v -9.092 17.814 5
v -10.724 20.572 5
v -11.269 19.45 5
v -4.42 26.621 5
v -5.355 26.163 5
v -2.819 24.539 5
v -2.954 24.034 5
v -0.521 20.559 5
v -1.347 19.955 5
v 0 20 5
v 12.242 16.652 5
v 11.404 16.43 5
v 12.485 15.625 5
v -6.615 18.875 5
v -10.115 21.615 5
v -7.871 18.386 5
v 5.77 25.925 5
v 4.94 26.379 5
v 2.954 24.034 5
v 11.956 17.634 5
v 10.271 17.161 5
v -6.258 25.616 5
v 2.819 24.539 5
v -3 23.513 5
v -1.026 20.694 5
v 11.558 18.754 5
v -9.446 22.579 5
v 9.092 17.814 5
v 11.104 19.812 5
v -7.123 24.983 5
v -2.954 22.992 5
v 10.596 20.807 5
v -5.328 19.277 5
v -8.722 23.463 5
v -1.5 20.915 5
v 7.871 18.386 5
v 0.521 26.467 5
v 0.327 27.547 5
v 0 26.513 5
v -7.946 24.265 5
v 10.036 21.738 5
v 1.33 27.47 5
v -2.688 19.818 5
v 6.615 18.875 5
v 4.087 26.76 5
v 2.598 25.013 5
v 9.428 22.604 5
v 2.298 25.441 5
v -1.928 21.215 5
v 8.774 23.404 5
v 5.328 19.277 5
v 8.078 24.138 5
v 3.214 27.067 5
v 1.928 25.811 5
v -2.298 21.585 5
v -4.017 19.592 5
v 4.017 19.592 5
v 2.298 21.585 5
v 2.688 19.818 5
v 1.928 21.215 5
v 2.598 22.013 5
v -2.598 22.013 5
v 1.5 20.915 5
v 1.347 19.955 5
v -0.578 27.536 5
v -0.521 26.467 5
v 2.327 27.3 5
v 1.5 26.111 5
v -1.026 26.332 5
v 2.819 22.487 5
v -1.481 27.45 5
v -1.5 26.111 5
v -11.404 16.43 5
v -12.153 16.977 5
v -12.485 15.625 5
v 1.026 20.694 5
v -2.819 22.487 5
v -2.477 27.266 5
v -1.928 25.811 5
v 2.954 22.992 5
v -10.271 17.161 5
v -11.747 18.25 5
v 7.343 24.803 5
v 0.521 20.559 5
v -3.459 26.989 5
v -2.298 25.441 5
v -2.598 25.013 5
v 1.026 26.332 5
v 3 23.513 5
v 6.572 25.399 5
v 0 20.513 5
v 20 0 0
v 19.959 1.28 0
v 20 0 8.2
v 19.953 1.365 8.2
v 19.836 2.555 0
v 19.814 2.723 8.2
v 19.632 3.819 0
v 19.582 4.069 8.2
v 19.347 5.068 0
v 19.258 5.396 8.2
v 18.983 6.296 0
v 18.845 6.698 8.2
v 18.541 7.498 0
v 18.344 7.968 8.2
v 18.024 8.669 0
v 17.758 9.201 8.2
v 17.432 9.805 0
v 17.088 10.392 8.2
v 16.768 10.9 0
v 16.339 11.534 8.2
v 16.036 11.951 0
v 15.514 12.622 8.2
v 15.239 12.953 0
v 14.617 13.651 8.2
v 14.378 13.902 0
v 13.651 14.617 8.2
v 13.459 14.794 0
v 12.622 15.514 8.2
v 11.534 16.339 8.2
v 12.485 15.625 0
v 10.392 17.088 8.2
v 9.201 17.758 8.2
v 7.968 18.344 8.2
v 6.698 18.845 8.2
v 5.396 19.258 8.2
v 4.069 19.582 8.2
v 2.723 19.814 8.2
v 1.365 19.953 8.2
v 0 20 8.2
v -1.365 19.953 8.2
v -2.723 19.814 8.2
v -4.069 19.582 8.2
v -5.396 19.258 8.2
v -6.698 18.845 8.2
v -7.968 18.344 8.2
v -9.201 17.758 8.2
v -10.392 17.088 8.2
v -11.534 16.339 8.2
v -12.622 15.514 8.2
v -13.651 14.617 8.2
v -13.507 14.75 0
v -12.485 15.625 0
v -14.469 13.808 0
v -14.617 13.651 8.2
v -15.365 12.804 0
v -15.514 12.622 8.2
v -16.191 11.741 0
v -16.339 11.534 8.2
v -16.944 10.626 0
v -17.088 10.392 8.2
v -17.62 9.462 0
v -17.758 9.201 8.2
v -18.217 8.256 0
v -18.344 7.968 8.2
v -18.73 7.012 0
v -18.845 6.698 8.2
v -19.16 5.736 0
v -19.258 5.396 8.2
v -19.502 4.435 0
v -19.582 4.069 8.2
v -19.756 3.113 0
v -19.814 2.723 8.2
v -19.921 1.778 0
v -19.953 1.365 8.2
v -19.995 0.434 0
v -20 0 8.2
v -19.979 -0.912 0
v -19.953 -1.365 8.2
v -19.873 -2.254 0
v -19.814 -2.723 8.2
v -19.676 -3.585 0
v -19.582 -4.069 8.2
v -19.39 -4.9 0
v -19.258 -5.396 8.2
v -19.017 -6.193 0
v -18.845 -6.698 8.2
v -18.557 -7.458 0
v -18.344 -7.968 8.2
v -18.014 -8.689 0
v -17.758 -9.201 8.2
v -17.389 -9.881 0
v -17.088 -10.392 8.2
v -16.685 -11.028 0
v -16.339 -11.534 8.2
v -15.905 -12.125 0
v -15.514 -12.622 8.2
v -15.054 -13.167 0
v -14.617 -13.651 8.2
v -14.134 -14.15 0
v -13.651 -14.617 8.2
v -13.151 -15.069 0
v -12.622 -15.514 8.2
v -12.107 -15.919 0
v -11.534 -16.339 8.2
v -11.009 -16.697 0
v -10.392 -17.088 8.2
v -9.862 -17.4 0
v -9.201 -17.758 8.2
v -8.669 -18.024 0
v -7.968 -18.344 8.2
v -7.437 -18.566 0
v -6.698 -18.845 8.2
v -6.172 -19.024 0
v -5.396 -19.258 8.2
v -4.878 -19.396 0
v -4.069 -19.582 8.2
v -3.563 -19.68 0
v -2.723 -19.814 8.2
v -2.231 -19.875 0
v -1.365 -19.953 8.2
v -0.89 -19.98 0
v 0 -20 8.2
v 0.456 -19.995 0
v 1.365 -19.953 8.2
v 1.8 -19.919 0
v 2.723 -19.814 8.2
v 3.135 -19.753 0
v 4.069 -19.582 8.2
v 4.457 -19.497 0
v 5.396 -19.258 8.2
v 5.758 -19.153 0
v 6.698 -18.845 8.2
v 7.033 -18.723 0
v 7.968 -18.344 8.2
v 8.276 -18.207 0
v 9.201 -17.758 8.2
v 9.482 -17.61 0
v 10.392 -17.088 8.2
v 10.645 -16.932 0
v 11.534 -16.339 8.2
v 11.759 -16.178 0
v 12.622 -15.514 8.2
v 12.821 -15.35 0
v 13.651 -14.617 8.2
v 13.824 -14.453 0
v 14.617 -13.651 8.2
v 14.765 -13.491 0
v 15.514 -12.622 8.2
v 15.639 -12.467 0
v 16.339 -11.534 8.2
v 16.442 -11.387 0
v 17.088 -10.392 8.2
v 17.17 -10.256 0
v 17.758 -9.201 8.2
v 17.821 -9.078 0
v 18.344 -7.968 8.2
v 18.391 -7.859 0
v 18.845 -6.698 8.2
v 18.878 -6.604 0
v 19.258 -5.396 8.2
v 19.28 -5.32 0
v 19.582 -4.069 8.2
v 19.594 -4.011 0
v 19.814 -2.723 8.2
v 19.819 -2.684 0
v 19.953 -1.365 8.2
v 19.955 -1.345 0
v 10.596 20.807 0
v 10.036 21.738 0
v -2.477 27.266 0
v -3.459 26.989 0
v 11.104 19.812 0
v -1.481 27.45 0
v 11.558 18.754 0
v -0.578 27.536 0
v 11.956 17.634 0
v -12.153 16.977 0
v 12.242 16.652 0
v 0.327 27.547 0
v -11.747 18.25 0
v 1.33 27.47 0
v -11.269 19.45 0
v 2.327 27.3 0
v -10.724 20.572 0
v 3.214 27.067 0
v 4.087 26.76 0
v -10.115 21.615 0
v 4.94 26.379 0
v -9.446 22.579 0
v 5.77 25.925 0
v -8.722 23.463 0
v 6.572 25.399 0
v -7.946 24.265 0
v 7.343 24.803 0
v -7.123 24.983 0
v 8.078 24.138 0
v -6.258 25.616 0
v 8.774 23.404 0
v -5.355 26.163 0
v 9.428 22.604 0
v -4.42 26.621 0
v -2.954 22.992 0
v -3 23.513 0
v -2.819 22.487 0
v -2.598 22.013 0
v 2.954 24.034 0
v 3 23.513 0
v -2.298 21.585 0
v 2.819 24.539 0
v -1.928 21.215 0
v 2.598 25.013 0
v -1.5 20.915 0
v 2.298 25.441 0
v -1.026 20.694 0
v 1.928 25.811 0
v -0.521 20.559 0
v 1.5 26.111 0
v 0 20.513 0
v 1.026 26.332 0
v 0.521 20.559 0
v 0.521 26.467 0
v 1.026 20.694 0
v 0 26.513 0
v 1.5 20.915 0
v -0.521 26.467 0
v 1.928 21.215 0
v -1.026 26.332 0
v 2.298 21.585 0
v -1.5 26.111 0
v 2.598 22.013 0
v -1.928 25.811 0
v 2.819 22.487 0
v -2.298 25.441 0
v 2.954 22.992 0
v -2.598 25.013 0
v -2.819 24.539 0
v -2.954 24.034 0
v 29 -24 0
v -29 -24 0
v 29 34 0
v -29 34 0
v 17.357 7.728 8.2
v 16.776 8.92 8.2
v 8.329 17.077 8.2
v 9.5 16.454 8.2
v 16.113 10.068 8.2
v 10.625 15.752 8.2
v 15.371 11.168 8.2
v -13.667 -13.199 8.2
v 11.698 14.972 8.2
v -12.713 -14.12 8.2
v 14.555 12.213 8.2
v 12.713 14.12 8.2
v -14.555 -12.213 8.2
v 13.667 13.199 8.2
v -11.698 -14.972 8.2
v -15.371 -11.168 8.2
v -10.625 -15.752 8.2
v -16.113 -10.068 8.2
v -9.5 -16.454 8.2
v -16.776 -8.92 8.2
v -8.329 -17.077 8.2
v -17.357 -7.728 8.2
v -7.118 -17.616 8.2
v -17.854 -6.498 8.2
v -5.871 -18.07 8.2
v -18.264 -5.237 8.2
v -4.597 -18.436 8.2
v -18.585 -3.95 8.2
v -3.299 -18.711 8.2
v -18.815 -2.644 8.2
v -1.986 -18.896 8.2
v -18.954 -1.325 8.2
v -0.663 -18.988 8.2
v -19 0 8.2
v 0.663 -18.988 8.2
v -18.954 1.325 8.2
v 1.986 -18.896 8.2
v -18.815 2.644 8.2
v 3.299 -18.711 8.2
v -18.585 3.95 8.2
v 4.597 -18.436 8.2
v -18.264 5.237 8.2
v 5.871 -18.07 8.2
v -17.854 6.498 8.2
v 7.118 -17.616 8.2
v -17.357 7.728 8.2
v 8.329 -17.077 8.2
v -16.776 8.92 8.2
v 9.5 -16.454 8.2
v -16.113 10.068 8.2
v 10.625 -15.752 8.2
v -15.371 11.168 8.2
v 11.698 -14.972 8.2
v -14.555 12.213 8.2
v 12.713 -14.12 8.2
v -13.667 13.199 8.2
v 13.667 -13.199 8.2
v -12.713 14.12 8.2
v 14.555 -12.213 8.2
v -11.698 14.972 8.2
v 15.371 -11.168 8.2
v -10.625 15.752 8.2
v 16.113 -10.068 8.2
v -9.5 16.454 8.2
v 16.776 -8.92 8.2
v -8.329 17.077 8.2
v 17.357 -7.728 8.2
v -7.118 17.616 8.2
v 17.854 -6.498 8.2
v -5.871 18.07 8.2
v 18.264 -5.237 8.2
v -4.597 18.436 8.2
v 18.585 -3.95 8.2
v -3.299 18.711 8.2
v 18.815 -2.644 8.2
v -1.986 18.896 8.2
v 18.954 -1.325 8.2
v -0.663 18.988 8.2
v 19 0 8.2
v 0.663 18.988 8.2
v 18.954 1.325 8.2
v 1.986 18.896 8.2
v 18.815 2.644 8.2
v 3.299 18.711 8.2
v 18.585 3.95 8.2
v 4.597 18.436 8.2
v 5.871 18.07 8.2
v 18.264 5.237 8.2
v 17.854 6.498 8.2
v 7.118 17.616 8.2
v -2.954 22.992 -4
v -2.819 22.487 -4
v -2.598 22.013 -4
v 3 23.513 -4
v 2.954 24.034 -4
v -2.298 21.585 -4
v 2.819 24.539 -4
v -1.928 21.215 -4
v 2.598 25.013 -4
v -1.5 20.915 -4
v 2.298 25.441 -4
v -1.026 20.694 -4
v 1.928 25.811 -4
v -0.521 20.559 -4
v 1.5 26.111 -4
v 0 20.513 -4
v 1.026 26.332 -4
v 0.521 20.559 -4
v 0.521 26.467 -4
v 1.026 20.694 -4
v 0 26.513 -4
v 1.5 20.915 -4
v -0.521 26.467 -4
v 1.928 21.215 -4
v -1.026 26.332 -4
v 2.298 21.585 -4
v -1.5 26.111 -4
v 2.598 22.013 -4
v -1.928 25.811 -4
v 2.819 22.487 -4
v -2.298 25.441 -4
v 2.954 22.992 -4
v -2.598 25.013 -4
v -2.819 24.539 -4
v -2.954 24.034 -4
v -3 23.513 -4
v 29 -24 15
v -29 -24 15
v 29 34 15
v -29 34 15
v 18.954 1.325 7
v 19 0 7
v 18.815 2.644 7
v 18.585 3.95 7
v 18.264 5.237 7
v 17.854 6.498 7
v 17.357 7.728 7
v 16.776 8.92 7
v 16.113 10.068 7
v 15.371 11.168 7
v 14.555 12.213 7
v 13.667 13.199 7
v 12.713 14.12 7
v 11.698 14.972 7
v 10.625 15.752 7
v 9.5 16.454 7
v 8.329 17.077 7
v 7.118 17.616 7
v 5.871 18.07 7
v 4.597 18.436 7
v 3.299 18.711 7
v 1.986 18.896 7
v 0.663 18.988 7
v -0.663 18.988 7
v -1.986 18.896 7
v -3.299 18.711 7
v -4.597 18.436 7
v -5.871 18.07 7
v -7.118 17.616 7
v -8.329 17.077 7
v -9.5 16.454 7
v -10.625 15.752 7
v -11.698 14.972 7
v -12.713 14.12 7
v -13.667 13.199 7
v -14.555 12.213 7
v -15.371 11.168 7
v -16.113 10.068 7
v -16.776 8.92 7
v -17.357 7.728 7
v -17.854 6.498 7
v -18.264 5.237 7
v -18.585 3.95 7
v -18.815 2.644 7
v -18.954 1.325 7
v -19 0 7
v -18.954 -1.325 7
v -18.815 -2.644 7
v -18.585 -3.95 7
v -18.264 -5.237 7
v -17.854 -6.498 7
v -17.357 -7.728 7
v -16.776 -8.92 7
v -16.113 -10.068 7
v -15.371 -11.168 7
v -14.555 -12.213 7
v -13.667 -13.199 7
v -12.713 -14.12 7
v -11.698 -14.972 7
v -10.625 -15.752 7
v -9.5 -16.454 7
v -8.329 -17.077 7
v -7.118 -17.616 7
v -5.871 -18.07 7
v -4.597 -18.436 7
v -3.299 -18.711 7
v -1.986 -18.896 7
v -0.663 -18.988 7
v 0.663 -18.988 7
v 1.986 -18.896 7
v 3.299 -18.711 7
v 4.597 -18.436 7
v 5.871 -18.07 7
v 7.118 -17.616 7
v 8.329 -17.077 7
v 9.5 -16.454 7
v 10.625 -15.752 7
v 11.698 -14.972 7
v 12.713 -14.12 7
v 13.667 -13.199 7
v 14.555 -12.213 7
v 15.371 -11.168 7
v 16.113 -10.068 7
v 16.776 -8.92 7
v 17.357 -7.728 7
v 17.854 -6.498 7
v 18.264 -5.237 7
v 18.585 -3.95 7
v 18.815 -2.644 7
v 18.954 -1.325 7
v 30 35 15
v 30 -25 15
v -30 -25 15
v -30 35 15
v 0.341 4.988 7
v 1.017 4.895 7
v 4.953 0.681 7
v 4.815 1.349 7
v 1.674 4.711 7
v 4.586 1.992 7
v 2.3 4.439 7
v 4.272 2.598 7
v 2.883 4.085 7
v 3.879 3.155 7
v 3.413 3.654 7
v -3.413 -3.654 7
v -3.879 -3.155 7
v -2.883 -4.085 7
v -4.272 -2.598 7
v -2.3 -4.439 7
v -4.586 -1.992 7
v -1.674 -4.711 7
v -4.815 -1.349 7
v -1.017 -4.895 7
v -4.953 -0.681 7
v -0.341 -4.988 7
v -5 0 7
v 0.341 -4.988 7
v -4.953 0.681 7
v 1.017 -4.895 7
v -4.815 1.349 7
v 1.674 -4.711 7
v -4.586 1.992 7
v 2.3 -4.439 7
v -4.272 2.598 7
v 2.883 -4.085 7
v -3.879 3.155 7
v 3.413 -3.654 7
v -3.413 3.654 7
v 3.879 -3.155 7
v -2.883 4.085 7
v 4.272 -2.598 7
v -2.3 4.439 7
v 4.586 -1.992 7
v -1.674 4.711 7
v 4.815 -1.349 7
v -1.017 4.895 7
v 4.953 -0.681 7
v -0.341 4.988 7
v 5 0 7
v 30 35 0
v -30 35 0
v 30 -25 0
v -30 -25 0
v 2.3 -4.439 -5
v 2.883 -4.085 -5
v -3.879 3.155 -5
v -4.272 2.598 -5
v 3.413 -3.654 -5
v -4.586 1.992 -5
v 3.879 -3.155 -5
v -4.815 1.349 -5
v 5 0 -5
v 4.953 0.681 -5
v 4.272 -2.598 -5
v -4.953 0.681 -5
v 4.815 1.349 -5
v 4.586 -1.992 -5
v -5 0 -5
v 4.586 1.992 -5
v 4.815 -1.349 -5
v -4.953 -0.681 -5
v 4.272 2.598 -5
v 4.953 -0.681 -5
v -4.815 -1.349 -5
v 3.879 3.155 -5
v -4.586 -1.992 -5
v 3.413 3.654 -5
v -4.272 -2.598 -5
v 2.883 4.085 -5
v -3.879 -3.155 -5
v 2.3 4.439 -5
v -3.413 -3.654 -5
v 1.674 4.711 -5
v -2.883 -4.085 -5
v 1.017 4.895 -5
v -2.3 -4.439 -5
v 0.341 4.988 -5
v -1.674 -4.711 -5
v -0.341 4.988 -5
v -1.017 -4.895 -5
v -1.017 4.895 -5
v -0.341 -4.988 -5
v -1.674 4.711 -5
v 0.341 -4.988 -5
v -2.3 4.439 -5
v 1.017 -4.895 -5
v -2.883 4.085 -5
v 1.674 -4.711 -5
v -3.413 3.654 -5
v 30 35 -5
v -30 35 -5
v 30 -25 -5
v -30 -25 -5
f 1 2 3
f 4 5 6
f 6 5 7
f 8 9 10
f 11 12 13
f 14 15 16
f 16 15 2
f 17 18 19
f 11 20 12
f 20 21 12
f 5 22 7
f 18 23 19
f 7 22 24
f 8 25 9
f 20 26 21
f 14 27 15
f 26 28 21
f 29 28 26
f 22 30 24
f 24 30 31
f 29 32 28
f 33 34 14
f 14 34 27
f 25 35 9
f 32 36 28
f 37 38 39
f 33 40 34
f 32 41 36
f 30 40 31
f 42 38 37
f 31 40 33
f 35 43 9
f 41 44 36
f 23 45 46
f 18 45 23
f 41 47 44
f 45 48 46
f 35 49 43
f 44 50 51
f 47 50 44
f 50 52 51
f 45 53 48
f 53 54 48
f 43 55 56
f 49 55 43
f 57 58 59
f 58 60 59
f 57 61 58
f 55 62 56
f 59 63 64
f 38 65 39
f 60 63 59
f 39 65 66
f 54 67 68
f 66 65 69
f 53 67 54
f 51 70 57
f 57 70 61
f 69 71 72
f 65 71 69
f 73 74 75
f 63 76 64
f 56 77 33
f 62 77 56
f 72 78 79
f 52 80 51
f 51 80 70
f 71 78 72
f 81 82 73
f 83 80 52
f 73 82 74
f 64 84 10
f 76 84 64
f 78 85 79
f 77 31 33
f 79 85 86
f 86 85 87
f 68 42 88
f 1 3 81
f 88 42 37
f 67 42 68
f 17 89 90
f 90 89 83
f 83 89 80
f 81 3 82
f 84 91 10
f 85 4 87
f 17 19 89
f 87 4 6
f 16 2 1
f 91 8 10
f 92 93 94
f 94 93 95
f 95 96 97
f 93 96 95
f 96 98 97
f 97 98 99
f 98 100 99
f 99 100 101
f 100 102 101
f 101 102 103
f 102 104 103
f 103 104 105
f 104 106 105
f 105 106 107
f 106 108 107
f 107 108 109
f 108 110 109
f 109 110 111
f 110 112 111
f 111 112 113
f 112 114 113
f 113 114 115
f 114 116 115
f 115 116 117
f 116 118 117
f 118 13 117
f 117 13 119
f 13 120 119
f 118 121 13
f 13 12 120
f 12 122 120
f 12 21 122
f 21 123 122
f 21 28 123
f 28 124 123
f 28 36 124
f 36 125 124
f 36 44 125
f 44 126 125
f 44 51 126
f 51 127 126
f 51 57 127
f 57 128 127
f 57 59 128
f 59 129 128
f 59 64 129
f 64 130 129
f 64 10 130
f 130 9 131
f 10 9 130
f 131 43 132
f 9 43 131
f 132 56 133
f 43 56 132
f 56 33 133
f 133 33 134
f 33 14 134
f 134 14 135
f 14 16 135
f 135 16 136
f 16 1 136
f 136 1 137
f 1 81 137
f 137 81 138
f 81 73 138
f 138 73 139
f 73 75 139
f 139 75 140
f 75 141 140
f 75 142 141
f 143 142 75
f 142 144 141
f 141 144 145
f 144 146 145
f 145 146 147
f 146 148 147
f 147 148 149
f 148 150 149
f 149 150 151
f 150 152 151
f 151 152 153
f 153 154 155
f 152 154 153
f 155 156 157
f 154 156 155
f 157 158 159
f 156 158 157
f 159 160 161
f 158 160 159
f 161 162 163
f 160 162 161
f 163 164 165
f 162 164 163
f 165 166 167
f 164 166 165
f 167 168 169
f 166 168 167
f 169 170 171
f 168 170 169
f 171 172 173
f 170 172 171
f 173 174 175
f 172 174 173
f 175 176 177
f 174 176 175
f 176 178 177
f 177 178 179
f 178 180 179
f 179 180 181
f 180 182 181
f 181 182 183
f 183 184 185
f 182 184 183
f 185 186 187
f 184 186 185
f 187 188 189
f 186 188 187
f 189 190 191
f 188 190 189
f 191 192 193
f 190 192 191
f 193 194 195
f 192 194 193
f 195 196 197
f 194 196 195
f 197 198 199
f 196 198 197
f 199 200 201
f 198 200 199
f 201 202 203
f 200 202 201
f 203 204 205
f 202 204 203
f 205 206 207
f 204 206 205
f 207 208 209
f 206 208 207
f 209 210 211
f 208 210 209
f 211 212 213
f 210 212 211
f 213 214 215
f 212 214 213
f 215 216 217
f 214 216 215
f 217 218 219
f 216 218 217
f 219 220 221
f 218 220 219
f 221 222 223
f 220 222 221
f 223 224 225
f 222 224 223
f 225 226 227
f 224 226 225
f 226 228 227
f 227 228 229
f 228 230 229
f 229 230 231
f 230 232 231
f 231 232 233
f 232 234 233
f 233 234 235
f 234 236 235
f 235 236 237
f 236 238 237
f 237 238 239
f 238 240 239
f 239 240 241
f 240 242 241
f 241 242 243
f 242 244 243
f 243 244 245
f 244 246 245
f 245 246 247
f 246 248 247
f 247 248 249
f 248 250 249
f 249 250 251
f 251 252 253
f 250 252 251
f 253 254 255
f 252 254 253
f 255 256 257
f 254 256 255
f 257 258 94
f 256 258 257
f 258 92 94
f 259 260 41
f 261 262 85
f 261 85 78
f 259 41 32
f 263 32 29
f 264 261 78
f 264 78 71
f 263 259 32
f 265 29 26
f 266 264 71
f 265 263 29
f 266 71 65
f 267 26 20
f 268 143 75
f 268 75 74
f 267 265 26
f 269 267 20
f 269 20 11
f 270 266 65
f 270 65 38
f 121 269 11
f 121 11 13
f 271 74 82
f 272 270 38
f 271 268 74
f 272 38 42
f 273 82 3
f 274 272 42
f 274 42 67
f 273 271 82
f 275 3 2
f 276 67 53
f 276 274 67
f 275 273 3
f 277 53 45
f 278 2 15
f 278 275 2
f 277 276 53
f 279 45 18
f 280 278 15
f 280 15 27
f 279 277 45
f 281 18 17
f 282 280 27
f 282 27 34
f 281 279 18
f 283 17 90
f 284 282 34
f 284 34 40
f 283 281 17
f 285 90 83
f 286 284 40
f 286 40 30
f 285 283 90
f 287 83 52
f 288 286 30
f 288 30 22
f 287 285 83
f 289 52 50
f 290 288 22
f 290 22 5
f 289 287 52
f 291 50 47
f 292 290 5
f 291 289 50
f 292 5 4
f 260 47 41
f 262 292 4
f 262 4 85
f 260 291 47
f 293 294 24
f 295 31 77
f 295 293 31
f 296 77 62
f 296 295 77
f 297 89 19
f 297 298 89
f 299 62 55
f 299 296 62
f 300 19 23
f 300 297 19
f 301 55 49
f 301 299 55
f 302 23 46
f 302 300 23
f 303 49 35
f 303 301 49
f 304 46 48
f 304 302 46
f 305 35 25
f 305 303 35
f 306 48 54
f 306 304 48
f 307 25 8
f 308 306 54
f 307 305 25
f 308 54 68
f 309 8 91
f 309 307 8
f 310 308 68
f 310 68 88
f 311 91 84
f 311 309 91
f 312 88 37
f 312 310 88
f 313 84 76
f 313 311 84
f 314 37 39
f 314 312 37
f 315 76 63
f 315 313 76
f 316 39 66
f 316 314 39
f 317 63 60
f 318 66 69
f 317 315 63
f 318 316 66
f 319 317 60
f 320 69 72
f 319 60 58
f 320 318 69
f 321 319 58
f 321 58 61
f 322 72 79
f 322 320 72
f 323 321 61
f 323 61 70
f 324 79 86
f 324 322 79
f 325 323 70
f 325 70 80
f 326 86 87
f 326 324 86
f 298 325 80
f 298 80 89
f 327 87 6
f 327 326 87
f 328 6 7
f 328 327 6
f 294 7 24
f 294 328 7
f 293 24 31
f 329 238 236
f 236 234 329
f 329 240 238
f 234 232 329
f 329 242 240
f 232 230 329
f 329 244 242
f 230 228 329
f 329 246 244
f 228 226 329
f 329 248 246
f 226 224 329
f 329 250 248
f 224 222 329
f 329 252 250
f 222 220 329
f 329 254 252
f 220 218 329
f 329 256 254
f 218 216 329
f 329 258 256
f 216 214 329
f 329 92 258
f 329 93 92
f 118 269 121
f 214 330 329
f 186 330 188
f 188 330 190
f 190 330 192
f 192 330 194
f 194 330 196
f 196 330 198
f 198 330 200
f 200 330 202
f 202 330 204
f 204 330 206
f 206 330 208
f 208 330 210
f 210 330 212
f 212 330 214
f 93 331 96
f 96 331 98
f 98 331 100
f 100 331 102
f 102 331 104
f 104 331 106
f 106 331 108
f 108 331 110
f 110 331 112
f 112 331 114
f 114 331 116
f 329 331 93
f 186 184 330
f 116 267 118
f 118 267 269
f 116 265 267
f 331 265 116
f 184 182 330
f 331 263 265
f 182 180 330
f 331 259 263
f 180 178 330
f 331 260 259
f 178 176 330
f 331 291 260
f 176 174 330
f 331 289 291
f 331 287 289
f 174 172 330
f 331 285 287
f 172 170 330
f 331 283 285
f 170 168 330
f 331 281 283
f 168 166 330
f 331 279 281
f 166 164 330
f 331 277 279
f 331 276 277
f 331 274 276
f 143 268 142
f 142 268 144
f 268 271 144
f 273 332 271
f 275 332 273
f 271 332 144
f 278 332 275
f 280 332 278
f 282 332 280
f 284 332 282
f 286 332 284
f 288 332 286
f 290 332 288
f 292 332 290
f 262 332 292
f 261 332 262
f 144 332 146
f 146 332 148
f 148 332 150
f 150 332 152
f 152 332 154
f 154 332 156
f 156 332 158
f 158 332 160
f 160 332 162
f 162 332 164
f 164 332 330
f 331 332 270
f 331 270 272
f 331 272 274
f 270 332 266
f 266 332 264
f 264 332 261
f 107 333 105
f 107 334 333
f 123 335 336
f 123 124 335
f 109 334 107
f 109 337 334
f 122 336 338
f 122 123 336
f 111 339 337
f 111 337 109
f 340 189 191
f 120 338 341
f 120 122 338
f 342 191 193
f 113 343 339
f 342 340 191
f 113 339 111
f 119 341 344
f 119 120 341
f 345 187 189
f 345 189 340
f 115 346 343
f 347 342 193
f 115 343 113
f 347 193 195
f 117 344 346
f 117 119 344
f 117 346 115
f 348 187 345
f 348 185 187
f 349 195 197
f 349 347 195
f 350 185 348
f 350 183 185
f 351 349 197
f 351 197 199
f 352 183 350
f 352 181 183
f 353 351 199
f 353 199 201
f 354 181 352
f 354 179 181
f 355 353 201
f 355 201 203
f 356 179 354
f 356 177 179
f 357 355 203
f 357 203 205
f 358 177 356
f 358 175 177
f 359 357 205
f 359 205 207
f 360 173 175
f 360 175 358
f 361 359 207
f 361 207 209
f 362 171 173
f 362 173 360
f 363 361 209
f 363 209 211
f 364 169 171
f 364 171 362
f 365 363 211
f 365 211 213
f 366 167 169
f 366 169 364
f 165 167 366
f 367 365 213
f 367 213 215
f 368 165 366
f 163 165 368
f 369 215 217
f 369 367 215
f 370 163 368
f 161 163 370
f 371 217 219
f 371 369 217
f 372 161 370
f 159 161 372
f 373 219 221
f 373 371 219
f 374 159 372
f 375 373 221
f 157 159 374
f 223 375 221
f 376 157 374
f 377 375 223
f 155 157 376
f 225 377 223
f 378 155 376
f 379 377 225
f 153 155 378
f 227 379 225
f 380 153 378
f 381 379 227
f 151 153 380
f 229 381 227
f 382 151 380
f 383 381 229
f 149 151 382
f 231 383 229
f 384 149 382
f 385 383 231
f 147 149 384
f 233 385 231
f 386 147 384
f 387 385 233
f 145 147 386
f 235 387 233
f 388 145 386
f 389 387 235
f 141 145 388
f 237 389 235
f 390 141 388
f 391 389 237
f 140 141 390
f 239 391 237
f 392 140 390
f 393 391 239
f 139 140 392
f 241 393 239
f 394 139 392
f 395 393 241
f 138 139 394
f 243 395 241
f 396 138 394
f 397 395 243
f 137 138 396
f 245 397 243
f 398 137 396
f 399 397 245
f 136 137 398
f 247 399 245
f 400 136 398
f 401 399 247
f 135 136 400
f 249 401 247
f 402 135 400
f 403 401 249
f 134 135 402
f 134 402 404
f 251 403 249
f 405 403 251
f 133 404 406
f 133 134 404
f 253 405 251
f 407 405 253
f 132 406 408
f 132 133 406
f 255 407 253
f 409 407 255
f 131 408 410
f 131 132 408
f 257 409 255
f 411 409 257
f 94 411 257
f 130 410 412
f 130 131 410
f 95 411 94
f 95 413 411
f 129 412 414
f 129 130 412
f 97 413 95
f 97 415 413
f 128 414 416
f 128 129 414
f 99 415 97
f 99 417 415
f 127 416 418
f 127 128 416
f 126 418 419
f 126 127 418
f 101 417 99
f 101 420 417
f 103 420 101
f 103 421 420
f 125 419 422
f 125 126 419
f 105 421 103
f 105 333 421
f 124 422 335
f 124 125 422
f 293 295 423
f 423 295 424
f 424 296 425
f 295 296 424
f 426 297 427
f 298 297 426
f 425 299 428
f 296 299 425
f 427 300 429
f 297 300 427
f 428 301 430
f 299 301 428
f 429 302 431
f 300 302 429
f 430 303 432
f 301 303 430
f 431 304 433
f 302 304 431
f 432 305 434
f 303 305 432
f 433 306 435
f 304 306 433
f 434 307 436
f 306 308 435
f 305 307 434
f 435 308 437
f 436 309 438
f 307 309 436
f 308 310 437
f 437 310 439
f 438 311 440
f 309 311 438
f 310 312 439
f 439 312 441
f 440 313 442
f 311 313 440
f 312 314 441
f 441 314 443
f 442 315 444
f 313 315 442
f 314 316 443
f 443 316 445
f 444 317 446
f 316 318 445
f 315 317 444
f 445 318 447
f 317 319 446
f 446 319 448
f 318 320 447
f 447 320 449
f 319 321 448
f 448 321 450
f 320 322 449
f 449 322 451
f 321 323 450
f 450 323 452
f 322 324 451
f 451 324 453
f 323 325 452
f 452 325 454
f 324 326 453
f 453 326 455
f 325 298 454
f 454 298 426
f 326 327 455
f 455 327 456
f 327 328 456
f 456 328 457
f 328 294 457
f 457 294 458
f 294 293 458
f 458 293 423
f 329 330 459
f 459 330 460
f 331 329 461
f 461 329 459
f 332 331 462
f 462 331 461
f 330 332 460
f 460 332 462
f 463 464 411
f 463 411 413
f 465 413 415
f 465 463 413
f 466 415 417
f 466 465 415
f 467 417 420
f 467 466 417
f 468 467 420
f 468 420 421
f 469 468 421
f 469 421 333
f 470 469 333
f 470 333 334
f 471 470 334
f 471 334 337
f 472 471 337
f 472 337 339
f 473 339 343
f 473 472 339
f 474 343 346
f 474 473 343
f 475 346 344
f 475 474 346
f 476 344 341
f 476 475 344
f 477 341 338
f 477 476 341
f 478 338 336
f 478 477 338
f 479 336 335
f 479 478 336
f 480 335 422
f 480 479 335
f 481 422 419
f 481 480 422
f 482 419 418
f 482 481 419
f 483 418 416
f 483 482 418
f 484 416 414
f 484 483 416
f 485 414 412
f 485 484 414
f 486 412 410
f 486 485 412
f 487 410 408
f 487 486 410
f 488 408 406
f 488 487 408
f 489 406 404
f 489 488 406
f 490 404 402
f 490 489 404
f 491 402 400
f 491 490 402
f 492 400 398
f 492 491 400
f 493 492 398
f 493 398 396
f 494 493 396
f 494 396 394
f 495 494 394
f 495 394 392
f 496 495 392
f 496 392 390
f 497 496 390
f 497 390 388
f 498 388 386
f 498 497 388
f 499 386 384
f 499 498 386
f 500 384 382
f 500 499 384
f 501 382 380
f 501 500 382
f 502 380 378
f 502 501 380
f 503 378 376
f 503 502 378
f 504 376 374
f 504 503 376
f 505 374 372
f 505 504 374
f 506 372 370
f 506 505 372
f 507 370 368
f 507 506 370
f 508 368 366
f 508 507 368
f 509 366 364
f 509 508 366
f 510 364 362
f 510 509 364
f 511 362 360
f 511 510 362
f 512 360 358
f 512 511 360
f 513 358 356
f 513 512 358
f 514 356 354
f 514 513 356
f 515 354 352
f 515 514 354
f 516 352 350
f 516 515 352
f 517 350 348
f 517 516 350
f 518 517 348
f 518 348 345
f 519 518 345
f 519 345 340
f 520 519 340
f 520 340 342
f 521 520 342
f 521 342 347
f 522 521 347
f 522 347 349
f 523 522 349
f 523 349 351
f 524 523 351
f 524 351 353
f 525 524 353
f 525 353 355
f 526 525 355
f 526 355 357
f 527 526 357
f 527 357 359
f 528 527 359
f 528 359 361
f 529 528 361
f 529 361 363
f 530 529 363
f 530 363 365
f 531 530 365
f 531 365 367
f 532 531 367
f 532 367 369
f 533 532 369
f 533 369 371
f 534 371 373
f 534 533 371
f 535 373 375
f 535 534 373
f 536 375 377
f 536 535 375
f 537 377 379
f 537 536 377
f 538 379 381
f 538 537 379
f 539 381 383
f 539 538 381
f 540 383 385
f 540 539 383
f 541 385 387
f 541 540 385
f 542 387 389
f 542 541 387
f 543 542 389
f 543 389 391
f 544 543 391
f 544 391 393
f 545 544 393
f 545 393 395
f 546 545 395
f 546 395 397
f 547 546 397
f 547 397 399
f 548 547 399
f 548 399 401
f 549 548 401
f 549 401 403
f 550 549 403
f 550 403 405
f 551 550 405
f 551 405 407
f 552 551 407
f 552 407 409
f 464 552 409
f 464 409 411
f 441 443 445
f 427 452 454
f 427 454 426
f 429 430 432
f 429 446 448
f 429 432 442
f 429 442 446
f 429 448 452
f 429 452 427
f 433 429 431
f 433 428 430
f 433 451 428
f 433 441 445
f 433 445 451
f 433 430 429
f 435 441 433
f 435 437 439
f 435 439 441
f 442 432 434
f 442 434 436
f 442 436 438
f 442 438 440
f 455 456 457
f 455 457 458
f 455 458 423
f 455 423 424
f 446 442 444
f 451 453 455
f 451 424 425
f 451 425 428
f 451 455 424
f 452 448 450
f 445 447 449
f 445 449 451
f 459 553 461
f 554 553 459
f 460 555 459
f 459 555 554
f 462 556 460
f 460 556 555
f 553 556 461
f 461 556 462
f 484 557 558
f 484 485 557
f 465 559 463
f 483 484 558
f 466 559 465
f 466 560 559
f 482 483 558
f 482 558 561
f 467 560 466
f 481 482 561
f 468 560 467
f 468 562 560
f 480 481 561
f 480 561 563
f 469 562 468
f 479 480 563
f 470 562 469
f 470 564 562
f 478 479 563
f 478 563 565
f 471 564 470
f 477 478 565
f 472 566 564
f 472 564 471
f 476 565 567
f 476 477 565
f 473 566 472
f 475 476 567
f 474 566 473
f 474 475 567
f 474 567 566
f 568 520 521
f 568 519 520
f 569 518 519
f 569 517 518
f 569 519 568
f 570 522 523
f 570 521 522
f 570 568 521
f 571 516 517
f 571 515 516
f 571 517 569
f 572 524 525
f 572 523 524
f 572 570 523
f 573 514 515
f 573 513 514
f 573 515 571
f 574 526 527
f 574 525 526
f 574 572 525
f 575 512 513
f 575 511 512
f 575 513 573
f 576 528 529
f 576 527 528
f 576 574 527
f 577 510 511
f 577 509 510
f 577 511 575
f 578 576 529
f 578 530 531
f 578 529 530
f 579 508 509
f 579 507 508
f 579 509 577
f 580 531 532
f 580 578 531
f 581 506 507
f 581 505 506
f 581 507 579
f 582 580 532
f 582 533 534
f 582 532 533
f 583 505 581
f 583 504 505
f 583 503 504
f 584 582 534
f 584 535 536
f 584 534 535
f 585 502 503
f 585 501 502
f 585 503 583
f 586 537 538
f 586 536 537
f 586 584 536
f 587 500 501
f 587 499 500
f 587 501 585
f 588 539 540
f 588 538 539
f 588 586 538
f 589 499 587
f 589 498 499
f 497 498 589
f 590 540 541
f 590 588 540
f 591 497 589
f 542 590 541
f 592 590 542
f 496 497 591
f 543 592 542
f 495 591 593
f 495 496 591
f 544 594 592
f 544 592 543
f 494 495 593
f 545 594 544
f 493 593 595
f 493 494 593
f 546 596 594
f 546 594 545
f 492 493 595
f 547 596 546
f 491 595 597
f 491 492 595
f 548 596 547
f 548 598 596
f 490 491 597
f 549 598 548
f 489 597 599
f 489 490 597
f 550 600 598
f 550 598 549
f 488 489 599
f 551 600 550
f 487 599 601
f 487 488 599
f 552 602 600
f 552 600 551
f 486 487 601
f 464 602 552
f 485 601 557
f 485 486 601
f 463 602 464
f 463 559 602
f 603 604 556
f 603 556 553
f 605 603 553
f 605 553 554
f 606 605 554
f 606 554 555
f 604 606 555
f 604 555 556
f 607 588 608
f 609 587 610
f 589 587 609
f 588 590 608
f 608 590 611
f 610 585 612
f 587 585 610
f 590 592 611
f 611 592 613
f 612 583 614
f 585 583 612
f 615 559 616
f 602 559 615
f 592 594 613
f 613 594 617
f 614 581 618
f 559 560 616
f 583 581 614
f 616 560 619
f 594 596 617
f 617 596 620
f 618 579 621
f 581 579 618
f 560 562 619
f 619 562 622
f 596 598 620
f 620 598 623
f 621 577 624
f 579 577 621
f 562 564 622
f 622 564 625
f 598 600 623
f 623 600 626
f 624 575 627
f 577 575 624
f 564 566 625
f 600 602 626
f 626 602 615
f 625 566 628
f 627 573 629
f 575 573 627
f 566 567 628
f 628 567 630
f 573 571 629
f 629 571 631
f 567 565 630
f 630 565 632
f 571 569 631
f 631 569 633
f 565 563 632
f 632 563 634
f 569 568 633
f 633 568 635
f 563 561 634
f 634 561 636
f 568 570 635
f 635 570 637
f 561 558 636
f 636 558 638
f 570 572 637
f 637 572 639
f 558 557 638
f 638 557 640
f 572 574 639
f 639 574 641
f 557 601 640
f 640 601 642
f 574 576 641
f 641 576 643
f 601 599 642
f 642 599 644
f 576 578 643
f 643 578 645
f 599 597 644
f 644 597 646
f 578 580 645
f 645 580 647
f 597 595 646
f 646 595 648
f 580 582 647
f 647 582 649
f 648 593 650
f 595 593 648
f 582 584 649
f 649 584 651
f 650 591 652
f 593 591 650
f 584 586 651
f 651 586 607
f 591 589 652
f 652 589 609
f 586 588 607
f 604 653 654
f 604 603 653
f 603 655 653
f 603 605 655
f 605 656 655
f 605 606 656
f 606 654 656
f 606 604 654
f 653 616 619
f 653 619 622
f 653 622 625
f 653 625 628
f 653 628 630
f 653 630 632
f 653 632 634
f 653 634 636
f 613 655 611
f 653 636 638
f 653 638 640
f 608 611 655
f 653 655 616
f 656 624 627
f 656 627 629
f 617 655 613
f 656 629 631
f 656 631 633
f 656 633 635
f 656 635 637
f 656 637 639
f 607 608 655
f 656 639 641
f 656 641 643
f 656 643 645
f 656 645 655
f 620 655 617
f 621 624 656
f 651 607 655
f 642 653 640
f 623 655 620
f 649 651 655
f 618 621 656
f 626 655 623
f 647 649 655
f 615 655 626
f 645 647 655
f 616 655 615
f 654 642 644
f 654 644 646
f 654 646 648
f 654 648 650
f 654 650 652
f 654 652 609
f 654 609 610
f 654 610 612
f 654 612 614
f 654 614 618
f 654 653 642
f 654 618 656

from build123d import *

# Parameters (mm, degrees)
SKETCH_R             = 20
PAD_DEPTH            = 7
SKETCH001_R          = 3
PAD001_DEPTH         = 5
SKETCH002_R          = 20
SKETCH002_R_2        = 19
PAD002_DEPTH         = 8.2
SKETCH003_W          = 60
SKETCH003_H          = 60
PAD003_DEPTH         = 5
SKETCH004_W          = 60
SKETCH004_H          = 60
SKETCH004_W_2        = 58
SKETCH004_H_2        = 58
PAD004_DEPTH         = 15
SKETCH006_R          = 3
POCKET_DEPTH         = 4
SKETCH005_R          = 5
POCKET001_DEPTH      = 5.001
POCKET001_DEPTH_BACK = -15.001


with BuildPart() as part:
    # Sketch → Pad (new body)
    with BuildSketch(Plane.XY):
        Circle(SKETCH_R)
    extrude(amount=PAD_DEPTH)

    # Sketch001 → Pad001 (join)
    with BuildSketch(Plane.XY):
        with BuildLine():
            add(Edge.make_bspline(
                [(-12.484701, 15.624732), (-10.829835, 23.483566), (0, 31.619604), (10.829835, 23.483566), (12.484701, 15.624732)],
                knots=[0, 0, 0, 0, 0.5, 1, 1, 1, 1], degree=3))
            Line((12.484701, 15.624732), (-12.484701, 15.624732))
        make_face()
        with Locations((0, 23.512977)):
            Circle(SKETCH001_R, mode=Mode.SUBTRACT)
    extrude(amount=PAD001_DEPTH)

    # Sketch002 → Pad002 (join)
    with BuildSketch(Plane.XY):
        Circle(SKETCH002_R)
        Circle(SKETCH002_R_2, mode=Mode.SUBTRACT)
    extrude(amount=PAD002_DEPTH)

    # Sketch003 → Pad003 (join)
    with BuildSketch(Plane.XY):
        with Locations((0, 5)):
            Rectangle(SKETCH003_W, SKETCH003_H)
    extrude(amount=-PAD003_DEPTH)

    # Sketch004 → Pad004 (join)
    with BuildSketch(Plane.XY):
        with Locations((0, 5)):
            Rectangle(SKETCH004_W, SKETCH004_H)
        with Locations((0, 5)):
            Rectangle(SKETCH004_W_2, SKETCH004_H_2, mode=Mode.SUBTRACT)
    extrude(amount=PAD004_DEPTH)

    # Sketch006 → Pocket (cut)
    with BuildSketch(Plane.XY):
        with Locations((0, 23.512977)):
            Circle(SKETCH006_R)
    extrude(amount=-POCKET_DEPTH, mode=Mode.SUBTRACT)

    # Sketch005 → Pocket001 (cut, two sides)
    with BuildSketch(Plane.XY) as pocket001_sk:
        Circle(SKETCH005_R)
    extrude(amount=-POCKET001_DEPTH, mode=Mode.SUBTRACT)
    extrude(pocket001_sk.sketch, amount=-POCKET001_DEPTH_BACK, mode=Mode.SUBTRACT)


solid = part.part
